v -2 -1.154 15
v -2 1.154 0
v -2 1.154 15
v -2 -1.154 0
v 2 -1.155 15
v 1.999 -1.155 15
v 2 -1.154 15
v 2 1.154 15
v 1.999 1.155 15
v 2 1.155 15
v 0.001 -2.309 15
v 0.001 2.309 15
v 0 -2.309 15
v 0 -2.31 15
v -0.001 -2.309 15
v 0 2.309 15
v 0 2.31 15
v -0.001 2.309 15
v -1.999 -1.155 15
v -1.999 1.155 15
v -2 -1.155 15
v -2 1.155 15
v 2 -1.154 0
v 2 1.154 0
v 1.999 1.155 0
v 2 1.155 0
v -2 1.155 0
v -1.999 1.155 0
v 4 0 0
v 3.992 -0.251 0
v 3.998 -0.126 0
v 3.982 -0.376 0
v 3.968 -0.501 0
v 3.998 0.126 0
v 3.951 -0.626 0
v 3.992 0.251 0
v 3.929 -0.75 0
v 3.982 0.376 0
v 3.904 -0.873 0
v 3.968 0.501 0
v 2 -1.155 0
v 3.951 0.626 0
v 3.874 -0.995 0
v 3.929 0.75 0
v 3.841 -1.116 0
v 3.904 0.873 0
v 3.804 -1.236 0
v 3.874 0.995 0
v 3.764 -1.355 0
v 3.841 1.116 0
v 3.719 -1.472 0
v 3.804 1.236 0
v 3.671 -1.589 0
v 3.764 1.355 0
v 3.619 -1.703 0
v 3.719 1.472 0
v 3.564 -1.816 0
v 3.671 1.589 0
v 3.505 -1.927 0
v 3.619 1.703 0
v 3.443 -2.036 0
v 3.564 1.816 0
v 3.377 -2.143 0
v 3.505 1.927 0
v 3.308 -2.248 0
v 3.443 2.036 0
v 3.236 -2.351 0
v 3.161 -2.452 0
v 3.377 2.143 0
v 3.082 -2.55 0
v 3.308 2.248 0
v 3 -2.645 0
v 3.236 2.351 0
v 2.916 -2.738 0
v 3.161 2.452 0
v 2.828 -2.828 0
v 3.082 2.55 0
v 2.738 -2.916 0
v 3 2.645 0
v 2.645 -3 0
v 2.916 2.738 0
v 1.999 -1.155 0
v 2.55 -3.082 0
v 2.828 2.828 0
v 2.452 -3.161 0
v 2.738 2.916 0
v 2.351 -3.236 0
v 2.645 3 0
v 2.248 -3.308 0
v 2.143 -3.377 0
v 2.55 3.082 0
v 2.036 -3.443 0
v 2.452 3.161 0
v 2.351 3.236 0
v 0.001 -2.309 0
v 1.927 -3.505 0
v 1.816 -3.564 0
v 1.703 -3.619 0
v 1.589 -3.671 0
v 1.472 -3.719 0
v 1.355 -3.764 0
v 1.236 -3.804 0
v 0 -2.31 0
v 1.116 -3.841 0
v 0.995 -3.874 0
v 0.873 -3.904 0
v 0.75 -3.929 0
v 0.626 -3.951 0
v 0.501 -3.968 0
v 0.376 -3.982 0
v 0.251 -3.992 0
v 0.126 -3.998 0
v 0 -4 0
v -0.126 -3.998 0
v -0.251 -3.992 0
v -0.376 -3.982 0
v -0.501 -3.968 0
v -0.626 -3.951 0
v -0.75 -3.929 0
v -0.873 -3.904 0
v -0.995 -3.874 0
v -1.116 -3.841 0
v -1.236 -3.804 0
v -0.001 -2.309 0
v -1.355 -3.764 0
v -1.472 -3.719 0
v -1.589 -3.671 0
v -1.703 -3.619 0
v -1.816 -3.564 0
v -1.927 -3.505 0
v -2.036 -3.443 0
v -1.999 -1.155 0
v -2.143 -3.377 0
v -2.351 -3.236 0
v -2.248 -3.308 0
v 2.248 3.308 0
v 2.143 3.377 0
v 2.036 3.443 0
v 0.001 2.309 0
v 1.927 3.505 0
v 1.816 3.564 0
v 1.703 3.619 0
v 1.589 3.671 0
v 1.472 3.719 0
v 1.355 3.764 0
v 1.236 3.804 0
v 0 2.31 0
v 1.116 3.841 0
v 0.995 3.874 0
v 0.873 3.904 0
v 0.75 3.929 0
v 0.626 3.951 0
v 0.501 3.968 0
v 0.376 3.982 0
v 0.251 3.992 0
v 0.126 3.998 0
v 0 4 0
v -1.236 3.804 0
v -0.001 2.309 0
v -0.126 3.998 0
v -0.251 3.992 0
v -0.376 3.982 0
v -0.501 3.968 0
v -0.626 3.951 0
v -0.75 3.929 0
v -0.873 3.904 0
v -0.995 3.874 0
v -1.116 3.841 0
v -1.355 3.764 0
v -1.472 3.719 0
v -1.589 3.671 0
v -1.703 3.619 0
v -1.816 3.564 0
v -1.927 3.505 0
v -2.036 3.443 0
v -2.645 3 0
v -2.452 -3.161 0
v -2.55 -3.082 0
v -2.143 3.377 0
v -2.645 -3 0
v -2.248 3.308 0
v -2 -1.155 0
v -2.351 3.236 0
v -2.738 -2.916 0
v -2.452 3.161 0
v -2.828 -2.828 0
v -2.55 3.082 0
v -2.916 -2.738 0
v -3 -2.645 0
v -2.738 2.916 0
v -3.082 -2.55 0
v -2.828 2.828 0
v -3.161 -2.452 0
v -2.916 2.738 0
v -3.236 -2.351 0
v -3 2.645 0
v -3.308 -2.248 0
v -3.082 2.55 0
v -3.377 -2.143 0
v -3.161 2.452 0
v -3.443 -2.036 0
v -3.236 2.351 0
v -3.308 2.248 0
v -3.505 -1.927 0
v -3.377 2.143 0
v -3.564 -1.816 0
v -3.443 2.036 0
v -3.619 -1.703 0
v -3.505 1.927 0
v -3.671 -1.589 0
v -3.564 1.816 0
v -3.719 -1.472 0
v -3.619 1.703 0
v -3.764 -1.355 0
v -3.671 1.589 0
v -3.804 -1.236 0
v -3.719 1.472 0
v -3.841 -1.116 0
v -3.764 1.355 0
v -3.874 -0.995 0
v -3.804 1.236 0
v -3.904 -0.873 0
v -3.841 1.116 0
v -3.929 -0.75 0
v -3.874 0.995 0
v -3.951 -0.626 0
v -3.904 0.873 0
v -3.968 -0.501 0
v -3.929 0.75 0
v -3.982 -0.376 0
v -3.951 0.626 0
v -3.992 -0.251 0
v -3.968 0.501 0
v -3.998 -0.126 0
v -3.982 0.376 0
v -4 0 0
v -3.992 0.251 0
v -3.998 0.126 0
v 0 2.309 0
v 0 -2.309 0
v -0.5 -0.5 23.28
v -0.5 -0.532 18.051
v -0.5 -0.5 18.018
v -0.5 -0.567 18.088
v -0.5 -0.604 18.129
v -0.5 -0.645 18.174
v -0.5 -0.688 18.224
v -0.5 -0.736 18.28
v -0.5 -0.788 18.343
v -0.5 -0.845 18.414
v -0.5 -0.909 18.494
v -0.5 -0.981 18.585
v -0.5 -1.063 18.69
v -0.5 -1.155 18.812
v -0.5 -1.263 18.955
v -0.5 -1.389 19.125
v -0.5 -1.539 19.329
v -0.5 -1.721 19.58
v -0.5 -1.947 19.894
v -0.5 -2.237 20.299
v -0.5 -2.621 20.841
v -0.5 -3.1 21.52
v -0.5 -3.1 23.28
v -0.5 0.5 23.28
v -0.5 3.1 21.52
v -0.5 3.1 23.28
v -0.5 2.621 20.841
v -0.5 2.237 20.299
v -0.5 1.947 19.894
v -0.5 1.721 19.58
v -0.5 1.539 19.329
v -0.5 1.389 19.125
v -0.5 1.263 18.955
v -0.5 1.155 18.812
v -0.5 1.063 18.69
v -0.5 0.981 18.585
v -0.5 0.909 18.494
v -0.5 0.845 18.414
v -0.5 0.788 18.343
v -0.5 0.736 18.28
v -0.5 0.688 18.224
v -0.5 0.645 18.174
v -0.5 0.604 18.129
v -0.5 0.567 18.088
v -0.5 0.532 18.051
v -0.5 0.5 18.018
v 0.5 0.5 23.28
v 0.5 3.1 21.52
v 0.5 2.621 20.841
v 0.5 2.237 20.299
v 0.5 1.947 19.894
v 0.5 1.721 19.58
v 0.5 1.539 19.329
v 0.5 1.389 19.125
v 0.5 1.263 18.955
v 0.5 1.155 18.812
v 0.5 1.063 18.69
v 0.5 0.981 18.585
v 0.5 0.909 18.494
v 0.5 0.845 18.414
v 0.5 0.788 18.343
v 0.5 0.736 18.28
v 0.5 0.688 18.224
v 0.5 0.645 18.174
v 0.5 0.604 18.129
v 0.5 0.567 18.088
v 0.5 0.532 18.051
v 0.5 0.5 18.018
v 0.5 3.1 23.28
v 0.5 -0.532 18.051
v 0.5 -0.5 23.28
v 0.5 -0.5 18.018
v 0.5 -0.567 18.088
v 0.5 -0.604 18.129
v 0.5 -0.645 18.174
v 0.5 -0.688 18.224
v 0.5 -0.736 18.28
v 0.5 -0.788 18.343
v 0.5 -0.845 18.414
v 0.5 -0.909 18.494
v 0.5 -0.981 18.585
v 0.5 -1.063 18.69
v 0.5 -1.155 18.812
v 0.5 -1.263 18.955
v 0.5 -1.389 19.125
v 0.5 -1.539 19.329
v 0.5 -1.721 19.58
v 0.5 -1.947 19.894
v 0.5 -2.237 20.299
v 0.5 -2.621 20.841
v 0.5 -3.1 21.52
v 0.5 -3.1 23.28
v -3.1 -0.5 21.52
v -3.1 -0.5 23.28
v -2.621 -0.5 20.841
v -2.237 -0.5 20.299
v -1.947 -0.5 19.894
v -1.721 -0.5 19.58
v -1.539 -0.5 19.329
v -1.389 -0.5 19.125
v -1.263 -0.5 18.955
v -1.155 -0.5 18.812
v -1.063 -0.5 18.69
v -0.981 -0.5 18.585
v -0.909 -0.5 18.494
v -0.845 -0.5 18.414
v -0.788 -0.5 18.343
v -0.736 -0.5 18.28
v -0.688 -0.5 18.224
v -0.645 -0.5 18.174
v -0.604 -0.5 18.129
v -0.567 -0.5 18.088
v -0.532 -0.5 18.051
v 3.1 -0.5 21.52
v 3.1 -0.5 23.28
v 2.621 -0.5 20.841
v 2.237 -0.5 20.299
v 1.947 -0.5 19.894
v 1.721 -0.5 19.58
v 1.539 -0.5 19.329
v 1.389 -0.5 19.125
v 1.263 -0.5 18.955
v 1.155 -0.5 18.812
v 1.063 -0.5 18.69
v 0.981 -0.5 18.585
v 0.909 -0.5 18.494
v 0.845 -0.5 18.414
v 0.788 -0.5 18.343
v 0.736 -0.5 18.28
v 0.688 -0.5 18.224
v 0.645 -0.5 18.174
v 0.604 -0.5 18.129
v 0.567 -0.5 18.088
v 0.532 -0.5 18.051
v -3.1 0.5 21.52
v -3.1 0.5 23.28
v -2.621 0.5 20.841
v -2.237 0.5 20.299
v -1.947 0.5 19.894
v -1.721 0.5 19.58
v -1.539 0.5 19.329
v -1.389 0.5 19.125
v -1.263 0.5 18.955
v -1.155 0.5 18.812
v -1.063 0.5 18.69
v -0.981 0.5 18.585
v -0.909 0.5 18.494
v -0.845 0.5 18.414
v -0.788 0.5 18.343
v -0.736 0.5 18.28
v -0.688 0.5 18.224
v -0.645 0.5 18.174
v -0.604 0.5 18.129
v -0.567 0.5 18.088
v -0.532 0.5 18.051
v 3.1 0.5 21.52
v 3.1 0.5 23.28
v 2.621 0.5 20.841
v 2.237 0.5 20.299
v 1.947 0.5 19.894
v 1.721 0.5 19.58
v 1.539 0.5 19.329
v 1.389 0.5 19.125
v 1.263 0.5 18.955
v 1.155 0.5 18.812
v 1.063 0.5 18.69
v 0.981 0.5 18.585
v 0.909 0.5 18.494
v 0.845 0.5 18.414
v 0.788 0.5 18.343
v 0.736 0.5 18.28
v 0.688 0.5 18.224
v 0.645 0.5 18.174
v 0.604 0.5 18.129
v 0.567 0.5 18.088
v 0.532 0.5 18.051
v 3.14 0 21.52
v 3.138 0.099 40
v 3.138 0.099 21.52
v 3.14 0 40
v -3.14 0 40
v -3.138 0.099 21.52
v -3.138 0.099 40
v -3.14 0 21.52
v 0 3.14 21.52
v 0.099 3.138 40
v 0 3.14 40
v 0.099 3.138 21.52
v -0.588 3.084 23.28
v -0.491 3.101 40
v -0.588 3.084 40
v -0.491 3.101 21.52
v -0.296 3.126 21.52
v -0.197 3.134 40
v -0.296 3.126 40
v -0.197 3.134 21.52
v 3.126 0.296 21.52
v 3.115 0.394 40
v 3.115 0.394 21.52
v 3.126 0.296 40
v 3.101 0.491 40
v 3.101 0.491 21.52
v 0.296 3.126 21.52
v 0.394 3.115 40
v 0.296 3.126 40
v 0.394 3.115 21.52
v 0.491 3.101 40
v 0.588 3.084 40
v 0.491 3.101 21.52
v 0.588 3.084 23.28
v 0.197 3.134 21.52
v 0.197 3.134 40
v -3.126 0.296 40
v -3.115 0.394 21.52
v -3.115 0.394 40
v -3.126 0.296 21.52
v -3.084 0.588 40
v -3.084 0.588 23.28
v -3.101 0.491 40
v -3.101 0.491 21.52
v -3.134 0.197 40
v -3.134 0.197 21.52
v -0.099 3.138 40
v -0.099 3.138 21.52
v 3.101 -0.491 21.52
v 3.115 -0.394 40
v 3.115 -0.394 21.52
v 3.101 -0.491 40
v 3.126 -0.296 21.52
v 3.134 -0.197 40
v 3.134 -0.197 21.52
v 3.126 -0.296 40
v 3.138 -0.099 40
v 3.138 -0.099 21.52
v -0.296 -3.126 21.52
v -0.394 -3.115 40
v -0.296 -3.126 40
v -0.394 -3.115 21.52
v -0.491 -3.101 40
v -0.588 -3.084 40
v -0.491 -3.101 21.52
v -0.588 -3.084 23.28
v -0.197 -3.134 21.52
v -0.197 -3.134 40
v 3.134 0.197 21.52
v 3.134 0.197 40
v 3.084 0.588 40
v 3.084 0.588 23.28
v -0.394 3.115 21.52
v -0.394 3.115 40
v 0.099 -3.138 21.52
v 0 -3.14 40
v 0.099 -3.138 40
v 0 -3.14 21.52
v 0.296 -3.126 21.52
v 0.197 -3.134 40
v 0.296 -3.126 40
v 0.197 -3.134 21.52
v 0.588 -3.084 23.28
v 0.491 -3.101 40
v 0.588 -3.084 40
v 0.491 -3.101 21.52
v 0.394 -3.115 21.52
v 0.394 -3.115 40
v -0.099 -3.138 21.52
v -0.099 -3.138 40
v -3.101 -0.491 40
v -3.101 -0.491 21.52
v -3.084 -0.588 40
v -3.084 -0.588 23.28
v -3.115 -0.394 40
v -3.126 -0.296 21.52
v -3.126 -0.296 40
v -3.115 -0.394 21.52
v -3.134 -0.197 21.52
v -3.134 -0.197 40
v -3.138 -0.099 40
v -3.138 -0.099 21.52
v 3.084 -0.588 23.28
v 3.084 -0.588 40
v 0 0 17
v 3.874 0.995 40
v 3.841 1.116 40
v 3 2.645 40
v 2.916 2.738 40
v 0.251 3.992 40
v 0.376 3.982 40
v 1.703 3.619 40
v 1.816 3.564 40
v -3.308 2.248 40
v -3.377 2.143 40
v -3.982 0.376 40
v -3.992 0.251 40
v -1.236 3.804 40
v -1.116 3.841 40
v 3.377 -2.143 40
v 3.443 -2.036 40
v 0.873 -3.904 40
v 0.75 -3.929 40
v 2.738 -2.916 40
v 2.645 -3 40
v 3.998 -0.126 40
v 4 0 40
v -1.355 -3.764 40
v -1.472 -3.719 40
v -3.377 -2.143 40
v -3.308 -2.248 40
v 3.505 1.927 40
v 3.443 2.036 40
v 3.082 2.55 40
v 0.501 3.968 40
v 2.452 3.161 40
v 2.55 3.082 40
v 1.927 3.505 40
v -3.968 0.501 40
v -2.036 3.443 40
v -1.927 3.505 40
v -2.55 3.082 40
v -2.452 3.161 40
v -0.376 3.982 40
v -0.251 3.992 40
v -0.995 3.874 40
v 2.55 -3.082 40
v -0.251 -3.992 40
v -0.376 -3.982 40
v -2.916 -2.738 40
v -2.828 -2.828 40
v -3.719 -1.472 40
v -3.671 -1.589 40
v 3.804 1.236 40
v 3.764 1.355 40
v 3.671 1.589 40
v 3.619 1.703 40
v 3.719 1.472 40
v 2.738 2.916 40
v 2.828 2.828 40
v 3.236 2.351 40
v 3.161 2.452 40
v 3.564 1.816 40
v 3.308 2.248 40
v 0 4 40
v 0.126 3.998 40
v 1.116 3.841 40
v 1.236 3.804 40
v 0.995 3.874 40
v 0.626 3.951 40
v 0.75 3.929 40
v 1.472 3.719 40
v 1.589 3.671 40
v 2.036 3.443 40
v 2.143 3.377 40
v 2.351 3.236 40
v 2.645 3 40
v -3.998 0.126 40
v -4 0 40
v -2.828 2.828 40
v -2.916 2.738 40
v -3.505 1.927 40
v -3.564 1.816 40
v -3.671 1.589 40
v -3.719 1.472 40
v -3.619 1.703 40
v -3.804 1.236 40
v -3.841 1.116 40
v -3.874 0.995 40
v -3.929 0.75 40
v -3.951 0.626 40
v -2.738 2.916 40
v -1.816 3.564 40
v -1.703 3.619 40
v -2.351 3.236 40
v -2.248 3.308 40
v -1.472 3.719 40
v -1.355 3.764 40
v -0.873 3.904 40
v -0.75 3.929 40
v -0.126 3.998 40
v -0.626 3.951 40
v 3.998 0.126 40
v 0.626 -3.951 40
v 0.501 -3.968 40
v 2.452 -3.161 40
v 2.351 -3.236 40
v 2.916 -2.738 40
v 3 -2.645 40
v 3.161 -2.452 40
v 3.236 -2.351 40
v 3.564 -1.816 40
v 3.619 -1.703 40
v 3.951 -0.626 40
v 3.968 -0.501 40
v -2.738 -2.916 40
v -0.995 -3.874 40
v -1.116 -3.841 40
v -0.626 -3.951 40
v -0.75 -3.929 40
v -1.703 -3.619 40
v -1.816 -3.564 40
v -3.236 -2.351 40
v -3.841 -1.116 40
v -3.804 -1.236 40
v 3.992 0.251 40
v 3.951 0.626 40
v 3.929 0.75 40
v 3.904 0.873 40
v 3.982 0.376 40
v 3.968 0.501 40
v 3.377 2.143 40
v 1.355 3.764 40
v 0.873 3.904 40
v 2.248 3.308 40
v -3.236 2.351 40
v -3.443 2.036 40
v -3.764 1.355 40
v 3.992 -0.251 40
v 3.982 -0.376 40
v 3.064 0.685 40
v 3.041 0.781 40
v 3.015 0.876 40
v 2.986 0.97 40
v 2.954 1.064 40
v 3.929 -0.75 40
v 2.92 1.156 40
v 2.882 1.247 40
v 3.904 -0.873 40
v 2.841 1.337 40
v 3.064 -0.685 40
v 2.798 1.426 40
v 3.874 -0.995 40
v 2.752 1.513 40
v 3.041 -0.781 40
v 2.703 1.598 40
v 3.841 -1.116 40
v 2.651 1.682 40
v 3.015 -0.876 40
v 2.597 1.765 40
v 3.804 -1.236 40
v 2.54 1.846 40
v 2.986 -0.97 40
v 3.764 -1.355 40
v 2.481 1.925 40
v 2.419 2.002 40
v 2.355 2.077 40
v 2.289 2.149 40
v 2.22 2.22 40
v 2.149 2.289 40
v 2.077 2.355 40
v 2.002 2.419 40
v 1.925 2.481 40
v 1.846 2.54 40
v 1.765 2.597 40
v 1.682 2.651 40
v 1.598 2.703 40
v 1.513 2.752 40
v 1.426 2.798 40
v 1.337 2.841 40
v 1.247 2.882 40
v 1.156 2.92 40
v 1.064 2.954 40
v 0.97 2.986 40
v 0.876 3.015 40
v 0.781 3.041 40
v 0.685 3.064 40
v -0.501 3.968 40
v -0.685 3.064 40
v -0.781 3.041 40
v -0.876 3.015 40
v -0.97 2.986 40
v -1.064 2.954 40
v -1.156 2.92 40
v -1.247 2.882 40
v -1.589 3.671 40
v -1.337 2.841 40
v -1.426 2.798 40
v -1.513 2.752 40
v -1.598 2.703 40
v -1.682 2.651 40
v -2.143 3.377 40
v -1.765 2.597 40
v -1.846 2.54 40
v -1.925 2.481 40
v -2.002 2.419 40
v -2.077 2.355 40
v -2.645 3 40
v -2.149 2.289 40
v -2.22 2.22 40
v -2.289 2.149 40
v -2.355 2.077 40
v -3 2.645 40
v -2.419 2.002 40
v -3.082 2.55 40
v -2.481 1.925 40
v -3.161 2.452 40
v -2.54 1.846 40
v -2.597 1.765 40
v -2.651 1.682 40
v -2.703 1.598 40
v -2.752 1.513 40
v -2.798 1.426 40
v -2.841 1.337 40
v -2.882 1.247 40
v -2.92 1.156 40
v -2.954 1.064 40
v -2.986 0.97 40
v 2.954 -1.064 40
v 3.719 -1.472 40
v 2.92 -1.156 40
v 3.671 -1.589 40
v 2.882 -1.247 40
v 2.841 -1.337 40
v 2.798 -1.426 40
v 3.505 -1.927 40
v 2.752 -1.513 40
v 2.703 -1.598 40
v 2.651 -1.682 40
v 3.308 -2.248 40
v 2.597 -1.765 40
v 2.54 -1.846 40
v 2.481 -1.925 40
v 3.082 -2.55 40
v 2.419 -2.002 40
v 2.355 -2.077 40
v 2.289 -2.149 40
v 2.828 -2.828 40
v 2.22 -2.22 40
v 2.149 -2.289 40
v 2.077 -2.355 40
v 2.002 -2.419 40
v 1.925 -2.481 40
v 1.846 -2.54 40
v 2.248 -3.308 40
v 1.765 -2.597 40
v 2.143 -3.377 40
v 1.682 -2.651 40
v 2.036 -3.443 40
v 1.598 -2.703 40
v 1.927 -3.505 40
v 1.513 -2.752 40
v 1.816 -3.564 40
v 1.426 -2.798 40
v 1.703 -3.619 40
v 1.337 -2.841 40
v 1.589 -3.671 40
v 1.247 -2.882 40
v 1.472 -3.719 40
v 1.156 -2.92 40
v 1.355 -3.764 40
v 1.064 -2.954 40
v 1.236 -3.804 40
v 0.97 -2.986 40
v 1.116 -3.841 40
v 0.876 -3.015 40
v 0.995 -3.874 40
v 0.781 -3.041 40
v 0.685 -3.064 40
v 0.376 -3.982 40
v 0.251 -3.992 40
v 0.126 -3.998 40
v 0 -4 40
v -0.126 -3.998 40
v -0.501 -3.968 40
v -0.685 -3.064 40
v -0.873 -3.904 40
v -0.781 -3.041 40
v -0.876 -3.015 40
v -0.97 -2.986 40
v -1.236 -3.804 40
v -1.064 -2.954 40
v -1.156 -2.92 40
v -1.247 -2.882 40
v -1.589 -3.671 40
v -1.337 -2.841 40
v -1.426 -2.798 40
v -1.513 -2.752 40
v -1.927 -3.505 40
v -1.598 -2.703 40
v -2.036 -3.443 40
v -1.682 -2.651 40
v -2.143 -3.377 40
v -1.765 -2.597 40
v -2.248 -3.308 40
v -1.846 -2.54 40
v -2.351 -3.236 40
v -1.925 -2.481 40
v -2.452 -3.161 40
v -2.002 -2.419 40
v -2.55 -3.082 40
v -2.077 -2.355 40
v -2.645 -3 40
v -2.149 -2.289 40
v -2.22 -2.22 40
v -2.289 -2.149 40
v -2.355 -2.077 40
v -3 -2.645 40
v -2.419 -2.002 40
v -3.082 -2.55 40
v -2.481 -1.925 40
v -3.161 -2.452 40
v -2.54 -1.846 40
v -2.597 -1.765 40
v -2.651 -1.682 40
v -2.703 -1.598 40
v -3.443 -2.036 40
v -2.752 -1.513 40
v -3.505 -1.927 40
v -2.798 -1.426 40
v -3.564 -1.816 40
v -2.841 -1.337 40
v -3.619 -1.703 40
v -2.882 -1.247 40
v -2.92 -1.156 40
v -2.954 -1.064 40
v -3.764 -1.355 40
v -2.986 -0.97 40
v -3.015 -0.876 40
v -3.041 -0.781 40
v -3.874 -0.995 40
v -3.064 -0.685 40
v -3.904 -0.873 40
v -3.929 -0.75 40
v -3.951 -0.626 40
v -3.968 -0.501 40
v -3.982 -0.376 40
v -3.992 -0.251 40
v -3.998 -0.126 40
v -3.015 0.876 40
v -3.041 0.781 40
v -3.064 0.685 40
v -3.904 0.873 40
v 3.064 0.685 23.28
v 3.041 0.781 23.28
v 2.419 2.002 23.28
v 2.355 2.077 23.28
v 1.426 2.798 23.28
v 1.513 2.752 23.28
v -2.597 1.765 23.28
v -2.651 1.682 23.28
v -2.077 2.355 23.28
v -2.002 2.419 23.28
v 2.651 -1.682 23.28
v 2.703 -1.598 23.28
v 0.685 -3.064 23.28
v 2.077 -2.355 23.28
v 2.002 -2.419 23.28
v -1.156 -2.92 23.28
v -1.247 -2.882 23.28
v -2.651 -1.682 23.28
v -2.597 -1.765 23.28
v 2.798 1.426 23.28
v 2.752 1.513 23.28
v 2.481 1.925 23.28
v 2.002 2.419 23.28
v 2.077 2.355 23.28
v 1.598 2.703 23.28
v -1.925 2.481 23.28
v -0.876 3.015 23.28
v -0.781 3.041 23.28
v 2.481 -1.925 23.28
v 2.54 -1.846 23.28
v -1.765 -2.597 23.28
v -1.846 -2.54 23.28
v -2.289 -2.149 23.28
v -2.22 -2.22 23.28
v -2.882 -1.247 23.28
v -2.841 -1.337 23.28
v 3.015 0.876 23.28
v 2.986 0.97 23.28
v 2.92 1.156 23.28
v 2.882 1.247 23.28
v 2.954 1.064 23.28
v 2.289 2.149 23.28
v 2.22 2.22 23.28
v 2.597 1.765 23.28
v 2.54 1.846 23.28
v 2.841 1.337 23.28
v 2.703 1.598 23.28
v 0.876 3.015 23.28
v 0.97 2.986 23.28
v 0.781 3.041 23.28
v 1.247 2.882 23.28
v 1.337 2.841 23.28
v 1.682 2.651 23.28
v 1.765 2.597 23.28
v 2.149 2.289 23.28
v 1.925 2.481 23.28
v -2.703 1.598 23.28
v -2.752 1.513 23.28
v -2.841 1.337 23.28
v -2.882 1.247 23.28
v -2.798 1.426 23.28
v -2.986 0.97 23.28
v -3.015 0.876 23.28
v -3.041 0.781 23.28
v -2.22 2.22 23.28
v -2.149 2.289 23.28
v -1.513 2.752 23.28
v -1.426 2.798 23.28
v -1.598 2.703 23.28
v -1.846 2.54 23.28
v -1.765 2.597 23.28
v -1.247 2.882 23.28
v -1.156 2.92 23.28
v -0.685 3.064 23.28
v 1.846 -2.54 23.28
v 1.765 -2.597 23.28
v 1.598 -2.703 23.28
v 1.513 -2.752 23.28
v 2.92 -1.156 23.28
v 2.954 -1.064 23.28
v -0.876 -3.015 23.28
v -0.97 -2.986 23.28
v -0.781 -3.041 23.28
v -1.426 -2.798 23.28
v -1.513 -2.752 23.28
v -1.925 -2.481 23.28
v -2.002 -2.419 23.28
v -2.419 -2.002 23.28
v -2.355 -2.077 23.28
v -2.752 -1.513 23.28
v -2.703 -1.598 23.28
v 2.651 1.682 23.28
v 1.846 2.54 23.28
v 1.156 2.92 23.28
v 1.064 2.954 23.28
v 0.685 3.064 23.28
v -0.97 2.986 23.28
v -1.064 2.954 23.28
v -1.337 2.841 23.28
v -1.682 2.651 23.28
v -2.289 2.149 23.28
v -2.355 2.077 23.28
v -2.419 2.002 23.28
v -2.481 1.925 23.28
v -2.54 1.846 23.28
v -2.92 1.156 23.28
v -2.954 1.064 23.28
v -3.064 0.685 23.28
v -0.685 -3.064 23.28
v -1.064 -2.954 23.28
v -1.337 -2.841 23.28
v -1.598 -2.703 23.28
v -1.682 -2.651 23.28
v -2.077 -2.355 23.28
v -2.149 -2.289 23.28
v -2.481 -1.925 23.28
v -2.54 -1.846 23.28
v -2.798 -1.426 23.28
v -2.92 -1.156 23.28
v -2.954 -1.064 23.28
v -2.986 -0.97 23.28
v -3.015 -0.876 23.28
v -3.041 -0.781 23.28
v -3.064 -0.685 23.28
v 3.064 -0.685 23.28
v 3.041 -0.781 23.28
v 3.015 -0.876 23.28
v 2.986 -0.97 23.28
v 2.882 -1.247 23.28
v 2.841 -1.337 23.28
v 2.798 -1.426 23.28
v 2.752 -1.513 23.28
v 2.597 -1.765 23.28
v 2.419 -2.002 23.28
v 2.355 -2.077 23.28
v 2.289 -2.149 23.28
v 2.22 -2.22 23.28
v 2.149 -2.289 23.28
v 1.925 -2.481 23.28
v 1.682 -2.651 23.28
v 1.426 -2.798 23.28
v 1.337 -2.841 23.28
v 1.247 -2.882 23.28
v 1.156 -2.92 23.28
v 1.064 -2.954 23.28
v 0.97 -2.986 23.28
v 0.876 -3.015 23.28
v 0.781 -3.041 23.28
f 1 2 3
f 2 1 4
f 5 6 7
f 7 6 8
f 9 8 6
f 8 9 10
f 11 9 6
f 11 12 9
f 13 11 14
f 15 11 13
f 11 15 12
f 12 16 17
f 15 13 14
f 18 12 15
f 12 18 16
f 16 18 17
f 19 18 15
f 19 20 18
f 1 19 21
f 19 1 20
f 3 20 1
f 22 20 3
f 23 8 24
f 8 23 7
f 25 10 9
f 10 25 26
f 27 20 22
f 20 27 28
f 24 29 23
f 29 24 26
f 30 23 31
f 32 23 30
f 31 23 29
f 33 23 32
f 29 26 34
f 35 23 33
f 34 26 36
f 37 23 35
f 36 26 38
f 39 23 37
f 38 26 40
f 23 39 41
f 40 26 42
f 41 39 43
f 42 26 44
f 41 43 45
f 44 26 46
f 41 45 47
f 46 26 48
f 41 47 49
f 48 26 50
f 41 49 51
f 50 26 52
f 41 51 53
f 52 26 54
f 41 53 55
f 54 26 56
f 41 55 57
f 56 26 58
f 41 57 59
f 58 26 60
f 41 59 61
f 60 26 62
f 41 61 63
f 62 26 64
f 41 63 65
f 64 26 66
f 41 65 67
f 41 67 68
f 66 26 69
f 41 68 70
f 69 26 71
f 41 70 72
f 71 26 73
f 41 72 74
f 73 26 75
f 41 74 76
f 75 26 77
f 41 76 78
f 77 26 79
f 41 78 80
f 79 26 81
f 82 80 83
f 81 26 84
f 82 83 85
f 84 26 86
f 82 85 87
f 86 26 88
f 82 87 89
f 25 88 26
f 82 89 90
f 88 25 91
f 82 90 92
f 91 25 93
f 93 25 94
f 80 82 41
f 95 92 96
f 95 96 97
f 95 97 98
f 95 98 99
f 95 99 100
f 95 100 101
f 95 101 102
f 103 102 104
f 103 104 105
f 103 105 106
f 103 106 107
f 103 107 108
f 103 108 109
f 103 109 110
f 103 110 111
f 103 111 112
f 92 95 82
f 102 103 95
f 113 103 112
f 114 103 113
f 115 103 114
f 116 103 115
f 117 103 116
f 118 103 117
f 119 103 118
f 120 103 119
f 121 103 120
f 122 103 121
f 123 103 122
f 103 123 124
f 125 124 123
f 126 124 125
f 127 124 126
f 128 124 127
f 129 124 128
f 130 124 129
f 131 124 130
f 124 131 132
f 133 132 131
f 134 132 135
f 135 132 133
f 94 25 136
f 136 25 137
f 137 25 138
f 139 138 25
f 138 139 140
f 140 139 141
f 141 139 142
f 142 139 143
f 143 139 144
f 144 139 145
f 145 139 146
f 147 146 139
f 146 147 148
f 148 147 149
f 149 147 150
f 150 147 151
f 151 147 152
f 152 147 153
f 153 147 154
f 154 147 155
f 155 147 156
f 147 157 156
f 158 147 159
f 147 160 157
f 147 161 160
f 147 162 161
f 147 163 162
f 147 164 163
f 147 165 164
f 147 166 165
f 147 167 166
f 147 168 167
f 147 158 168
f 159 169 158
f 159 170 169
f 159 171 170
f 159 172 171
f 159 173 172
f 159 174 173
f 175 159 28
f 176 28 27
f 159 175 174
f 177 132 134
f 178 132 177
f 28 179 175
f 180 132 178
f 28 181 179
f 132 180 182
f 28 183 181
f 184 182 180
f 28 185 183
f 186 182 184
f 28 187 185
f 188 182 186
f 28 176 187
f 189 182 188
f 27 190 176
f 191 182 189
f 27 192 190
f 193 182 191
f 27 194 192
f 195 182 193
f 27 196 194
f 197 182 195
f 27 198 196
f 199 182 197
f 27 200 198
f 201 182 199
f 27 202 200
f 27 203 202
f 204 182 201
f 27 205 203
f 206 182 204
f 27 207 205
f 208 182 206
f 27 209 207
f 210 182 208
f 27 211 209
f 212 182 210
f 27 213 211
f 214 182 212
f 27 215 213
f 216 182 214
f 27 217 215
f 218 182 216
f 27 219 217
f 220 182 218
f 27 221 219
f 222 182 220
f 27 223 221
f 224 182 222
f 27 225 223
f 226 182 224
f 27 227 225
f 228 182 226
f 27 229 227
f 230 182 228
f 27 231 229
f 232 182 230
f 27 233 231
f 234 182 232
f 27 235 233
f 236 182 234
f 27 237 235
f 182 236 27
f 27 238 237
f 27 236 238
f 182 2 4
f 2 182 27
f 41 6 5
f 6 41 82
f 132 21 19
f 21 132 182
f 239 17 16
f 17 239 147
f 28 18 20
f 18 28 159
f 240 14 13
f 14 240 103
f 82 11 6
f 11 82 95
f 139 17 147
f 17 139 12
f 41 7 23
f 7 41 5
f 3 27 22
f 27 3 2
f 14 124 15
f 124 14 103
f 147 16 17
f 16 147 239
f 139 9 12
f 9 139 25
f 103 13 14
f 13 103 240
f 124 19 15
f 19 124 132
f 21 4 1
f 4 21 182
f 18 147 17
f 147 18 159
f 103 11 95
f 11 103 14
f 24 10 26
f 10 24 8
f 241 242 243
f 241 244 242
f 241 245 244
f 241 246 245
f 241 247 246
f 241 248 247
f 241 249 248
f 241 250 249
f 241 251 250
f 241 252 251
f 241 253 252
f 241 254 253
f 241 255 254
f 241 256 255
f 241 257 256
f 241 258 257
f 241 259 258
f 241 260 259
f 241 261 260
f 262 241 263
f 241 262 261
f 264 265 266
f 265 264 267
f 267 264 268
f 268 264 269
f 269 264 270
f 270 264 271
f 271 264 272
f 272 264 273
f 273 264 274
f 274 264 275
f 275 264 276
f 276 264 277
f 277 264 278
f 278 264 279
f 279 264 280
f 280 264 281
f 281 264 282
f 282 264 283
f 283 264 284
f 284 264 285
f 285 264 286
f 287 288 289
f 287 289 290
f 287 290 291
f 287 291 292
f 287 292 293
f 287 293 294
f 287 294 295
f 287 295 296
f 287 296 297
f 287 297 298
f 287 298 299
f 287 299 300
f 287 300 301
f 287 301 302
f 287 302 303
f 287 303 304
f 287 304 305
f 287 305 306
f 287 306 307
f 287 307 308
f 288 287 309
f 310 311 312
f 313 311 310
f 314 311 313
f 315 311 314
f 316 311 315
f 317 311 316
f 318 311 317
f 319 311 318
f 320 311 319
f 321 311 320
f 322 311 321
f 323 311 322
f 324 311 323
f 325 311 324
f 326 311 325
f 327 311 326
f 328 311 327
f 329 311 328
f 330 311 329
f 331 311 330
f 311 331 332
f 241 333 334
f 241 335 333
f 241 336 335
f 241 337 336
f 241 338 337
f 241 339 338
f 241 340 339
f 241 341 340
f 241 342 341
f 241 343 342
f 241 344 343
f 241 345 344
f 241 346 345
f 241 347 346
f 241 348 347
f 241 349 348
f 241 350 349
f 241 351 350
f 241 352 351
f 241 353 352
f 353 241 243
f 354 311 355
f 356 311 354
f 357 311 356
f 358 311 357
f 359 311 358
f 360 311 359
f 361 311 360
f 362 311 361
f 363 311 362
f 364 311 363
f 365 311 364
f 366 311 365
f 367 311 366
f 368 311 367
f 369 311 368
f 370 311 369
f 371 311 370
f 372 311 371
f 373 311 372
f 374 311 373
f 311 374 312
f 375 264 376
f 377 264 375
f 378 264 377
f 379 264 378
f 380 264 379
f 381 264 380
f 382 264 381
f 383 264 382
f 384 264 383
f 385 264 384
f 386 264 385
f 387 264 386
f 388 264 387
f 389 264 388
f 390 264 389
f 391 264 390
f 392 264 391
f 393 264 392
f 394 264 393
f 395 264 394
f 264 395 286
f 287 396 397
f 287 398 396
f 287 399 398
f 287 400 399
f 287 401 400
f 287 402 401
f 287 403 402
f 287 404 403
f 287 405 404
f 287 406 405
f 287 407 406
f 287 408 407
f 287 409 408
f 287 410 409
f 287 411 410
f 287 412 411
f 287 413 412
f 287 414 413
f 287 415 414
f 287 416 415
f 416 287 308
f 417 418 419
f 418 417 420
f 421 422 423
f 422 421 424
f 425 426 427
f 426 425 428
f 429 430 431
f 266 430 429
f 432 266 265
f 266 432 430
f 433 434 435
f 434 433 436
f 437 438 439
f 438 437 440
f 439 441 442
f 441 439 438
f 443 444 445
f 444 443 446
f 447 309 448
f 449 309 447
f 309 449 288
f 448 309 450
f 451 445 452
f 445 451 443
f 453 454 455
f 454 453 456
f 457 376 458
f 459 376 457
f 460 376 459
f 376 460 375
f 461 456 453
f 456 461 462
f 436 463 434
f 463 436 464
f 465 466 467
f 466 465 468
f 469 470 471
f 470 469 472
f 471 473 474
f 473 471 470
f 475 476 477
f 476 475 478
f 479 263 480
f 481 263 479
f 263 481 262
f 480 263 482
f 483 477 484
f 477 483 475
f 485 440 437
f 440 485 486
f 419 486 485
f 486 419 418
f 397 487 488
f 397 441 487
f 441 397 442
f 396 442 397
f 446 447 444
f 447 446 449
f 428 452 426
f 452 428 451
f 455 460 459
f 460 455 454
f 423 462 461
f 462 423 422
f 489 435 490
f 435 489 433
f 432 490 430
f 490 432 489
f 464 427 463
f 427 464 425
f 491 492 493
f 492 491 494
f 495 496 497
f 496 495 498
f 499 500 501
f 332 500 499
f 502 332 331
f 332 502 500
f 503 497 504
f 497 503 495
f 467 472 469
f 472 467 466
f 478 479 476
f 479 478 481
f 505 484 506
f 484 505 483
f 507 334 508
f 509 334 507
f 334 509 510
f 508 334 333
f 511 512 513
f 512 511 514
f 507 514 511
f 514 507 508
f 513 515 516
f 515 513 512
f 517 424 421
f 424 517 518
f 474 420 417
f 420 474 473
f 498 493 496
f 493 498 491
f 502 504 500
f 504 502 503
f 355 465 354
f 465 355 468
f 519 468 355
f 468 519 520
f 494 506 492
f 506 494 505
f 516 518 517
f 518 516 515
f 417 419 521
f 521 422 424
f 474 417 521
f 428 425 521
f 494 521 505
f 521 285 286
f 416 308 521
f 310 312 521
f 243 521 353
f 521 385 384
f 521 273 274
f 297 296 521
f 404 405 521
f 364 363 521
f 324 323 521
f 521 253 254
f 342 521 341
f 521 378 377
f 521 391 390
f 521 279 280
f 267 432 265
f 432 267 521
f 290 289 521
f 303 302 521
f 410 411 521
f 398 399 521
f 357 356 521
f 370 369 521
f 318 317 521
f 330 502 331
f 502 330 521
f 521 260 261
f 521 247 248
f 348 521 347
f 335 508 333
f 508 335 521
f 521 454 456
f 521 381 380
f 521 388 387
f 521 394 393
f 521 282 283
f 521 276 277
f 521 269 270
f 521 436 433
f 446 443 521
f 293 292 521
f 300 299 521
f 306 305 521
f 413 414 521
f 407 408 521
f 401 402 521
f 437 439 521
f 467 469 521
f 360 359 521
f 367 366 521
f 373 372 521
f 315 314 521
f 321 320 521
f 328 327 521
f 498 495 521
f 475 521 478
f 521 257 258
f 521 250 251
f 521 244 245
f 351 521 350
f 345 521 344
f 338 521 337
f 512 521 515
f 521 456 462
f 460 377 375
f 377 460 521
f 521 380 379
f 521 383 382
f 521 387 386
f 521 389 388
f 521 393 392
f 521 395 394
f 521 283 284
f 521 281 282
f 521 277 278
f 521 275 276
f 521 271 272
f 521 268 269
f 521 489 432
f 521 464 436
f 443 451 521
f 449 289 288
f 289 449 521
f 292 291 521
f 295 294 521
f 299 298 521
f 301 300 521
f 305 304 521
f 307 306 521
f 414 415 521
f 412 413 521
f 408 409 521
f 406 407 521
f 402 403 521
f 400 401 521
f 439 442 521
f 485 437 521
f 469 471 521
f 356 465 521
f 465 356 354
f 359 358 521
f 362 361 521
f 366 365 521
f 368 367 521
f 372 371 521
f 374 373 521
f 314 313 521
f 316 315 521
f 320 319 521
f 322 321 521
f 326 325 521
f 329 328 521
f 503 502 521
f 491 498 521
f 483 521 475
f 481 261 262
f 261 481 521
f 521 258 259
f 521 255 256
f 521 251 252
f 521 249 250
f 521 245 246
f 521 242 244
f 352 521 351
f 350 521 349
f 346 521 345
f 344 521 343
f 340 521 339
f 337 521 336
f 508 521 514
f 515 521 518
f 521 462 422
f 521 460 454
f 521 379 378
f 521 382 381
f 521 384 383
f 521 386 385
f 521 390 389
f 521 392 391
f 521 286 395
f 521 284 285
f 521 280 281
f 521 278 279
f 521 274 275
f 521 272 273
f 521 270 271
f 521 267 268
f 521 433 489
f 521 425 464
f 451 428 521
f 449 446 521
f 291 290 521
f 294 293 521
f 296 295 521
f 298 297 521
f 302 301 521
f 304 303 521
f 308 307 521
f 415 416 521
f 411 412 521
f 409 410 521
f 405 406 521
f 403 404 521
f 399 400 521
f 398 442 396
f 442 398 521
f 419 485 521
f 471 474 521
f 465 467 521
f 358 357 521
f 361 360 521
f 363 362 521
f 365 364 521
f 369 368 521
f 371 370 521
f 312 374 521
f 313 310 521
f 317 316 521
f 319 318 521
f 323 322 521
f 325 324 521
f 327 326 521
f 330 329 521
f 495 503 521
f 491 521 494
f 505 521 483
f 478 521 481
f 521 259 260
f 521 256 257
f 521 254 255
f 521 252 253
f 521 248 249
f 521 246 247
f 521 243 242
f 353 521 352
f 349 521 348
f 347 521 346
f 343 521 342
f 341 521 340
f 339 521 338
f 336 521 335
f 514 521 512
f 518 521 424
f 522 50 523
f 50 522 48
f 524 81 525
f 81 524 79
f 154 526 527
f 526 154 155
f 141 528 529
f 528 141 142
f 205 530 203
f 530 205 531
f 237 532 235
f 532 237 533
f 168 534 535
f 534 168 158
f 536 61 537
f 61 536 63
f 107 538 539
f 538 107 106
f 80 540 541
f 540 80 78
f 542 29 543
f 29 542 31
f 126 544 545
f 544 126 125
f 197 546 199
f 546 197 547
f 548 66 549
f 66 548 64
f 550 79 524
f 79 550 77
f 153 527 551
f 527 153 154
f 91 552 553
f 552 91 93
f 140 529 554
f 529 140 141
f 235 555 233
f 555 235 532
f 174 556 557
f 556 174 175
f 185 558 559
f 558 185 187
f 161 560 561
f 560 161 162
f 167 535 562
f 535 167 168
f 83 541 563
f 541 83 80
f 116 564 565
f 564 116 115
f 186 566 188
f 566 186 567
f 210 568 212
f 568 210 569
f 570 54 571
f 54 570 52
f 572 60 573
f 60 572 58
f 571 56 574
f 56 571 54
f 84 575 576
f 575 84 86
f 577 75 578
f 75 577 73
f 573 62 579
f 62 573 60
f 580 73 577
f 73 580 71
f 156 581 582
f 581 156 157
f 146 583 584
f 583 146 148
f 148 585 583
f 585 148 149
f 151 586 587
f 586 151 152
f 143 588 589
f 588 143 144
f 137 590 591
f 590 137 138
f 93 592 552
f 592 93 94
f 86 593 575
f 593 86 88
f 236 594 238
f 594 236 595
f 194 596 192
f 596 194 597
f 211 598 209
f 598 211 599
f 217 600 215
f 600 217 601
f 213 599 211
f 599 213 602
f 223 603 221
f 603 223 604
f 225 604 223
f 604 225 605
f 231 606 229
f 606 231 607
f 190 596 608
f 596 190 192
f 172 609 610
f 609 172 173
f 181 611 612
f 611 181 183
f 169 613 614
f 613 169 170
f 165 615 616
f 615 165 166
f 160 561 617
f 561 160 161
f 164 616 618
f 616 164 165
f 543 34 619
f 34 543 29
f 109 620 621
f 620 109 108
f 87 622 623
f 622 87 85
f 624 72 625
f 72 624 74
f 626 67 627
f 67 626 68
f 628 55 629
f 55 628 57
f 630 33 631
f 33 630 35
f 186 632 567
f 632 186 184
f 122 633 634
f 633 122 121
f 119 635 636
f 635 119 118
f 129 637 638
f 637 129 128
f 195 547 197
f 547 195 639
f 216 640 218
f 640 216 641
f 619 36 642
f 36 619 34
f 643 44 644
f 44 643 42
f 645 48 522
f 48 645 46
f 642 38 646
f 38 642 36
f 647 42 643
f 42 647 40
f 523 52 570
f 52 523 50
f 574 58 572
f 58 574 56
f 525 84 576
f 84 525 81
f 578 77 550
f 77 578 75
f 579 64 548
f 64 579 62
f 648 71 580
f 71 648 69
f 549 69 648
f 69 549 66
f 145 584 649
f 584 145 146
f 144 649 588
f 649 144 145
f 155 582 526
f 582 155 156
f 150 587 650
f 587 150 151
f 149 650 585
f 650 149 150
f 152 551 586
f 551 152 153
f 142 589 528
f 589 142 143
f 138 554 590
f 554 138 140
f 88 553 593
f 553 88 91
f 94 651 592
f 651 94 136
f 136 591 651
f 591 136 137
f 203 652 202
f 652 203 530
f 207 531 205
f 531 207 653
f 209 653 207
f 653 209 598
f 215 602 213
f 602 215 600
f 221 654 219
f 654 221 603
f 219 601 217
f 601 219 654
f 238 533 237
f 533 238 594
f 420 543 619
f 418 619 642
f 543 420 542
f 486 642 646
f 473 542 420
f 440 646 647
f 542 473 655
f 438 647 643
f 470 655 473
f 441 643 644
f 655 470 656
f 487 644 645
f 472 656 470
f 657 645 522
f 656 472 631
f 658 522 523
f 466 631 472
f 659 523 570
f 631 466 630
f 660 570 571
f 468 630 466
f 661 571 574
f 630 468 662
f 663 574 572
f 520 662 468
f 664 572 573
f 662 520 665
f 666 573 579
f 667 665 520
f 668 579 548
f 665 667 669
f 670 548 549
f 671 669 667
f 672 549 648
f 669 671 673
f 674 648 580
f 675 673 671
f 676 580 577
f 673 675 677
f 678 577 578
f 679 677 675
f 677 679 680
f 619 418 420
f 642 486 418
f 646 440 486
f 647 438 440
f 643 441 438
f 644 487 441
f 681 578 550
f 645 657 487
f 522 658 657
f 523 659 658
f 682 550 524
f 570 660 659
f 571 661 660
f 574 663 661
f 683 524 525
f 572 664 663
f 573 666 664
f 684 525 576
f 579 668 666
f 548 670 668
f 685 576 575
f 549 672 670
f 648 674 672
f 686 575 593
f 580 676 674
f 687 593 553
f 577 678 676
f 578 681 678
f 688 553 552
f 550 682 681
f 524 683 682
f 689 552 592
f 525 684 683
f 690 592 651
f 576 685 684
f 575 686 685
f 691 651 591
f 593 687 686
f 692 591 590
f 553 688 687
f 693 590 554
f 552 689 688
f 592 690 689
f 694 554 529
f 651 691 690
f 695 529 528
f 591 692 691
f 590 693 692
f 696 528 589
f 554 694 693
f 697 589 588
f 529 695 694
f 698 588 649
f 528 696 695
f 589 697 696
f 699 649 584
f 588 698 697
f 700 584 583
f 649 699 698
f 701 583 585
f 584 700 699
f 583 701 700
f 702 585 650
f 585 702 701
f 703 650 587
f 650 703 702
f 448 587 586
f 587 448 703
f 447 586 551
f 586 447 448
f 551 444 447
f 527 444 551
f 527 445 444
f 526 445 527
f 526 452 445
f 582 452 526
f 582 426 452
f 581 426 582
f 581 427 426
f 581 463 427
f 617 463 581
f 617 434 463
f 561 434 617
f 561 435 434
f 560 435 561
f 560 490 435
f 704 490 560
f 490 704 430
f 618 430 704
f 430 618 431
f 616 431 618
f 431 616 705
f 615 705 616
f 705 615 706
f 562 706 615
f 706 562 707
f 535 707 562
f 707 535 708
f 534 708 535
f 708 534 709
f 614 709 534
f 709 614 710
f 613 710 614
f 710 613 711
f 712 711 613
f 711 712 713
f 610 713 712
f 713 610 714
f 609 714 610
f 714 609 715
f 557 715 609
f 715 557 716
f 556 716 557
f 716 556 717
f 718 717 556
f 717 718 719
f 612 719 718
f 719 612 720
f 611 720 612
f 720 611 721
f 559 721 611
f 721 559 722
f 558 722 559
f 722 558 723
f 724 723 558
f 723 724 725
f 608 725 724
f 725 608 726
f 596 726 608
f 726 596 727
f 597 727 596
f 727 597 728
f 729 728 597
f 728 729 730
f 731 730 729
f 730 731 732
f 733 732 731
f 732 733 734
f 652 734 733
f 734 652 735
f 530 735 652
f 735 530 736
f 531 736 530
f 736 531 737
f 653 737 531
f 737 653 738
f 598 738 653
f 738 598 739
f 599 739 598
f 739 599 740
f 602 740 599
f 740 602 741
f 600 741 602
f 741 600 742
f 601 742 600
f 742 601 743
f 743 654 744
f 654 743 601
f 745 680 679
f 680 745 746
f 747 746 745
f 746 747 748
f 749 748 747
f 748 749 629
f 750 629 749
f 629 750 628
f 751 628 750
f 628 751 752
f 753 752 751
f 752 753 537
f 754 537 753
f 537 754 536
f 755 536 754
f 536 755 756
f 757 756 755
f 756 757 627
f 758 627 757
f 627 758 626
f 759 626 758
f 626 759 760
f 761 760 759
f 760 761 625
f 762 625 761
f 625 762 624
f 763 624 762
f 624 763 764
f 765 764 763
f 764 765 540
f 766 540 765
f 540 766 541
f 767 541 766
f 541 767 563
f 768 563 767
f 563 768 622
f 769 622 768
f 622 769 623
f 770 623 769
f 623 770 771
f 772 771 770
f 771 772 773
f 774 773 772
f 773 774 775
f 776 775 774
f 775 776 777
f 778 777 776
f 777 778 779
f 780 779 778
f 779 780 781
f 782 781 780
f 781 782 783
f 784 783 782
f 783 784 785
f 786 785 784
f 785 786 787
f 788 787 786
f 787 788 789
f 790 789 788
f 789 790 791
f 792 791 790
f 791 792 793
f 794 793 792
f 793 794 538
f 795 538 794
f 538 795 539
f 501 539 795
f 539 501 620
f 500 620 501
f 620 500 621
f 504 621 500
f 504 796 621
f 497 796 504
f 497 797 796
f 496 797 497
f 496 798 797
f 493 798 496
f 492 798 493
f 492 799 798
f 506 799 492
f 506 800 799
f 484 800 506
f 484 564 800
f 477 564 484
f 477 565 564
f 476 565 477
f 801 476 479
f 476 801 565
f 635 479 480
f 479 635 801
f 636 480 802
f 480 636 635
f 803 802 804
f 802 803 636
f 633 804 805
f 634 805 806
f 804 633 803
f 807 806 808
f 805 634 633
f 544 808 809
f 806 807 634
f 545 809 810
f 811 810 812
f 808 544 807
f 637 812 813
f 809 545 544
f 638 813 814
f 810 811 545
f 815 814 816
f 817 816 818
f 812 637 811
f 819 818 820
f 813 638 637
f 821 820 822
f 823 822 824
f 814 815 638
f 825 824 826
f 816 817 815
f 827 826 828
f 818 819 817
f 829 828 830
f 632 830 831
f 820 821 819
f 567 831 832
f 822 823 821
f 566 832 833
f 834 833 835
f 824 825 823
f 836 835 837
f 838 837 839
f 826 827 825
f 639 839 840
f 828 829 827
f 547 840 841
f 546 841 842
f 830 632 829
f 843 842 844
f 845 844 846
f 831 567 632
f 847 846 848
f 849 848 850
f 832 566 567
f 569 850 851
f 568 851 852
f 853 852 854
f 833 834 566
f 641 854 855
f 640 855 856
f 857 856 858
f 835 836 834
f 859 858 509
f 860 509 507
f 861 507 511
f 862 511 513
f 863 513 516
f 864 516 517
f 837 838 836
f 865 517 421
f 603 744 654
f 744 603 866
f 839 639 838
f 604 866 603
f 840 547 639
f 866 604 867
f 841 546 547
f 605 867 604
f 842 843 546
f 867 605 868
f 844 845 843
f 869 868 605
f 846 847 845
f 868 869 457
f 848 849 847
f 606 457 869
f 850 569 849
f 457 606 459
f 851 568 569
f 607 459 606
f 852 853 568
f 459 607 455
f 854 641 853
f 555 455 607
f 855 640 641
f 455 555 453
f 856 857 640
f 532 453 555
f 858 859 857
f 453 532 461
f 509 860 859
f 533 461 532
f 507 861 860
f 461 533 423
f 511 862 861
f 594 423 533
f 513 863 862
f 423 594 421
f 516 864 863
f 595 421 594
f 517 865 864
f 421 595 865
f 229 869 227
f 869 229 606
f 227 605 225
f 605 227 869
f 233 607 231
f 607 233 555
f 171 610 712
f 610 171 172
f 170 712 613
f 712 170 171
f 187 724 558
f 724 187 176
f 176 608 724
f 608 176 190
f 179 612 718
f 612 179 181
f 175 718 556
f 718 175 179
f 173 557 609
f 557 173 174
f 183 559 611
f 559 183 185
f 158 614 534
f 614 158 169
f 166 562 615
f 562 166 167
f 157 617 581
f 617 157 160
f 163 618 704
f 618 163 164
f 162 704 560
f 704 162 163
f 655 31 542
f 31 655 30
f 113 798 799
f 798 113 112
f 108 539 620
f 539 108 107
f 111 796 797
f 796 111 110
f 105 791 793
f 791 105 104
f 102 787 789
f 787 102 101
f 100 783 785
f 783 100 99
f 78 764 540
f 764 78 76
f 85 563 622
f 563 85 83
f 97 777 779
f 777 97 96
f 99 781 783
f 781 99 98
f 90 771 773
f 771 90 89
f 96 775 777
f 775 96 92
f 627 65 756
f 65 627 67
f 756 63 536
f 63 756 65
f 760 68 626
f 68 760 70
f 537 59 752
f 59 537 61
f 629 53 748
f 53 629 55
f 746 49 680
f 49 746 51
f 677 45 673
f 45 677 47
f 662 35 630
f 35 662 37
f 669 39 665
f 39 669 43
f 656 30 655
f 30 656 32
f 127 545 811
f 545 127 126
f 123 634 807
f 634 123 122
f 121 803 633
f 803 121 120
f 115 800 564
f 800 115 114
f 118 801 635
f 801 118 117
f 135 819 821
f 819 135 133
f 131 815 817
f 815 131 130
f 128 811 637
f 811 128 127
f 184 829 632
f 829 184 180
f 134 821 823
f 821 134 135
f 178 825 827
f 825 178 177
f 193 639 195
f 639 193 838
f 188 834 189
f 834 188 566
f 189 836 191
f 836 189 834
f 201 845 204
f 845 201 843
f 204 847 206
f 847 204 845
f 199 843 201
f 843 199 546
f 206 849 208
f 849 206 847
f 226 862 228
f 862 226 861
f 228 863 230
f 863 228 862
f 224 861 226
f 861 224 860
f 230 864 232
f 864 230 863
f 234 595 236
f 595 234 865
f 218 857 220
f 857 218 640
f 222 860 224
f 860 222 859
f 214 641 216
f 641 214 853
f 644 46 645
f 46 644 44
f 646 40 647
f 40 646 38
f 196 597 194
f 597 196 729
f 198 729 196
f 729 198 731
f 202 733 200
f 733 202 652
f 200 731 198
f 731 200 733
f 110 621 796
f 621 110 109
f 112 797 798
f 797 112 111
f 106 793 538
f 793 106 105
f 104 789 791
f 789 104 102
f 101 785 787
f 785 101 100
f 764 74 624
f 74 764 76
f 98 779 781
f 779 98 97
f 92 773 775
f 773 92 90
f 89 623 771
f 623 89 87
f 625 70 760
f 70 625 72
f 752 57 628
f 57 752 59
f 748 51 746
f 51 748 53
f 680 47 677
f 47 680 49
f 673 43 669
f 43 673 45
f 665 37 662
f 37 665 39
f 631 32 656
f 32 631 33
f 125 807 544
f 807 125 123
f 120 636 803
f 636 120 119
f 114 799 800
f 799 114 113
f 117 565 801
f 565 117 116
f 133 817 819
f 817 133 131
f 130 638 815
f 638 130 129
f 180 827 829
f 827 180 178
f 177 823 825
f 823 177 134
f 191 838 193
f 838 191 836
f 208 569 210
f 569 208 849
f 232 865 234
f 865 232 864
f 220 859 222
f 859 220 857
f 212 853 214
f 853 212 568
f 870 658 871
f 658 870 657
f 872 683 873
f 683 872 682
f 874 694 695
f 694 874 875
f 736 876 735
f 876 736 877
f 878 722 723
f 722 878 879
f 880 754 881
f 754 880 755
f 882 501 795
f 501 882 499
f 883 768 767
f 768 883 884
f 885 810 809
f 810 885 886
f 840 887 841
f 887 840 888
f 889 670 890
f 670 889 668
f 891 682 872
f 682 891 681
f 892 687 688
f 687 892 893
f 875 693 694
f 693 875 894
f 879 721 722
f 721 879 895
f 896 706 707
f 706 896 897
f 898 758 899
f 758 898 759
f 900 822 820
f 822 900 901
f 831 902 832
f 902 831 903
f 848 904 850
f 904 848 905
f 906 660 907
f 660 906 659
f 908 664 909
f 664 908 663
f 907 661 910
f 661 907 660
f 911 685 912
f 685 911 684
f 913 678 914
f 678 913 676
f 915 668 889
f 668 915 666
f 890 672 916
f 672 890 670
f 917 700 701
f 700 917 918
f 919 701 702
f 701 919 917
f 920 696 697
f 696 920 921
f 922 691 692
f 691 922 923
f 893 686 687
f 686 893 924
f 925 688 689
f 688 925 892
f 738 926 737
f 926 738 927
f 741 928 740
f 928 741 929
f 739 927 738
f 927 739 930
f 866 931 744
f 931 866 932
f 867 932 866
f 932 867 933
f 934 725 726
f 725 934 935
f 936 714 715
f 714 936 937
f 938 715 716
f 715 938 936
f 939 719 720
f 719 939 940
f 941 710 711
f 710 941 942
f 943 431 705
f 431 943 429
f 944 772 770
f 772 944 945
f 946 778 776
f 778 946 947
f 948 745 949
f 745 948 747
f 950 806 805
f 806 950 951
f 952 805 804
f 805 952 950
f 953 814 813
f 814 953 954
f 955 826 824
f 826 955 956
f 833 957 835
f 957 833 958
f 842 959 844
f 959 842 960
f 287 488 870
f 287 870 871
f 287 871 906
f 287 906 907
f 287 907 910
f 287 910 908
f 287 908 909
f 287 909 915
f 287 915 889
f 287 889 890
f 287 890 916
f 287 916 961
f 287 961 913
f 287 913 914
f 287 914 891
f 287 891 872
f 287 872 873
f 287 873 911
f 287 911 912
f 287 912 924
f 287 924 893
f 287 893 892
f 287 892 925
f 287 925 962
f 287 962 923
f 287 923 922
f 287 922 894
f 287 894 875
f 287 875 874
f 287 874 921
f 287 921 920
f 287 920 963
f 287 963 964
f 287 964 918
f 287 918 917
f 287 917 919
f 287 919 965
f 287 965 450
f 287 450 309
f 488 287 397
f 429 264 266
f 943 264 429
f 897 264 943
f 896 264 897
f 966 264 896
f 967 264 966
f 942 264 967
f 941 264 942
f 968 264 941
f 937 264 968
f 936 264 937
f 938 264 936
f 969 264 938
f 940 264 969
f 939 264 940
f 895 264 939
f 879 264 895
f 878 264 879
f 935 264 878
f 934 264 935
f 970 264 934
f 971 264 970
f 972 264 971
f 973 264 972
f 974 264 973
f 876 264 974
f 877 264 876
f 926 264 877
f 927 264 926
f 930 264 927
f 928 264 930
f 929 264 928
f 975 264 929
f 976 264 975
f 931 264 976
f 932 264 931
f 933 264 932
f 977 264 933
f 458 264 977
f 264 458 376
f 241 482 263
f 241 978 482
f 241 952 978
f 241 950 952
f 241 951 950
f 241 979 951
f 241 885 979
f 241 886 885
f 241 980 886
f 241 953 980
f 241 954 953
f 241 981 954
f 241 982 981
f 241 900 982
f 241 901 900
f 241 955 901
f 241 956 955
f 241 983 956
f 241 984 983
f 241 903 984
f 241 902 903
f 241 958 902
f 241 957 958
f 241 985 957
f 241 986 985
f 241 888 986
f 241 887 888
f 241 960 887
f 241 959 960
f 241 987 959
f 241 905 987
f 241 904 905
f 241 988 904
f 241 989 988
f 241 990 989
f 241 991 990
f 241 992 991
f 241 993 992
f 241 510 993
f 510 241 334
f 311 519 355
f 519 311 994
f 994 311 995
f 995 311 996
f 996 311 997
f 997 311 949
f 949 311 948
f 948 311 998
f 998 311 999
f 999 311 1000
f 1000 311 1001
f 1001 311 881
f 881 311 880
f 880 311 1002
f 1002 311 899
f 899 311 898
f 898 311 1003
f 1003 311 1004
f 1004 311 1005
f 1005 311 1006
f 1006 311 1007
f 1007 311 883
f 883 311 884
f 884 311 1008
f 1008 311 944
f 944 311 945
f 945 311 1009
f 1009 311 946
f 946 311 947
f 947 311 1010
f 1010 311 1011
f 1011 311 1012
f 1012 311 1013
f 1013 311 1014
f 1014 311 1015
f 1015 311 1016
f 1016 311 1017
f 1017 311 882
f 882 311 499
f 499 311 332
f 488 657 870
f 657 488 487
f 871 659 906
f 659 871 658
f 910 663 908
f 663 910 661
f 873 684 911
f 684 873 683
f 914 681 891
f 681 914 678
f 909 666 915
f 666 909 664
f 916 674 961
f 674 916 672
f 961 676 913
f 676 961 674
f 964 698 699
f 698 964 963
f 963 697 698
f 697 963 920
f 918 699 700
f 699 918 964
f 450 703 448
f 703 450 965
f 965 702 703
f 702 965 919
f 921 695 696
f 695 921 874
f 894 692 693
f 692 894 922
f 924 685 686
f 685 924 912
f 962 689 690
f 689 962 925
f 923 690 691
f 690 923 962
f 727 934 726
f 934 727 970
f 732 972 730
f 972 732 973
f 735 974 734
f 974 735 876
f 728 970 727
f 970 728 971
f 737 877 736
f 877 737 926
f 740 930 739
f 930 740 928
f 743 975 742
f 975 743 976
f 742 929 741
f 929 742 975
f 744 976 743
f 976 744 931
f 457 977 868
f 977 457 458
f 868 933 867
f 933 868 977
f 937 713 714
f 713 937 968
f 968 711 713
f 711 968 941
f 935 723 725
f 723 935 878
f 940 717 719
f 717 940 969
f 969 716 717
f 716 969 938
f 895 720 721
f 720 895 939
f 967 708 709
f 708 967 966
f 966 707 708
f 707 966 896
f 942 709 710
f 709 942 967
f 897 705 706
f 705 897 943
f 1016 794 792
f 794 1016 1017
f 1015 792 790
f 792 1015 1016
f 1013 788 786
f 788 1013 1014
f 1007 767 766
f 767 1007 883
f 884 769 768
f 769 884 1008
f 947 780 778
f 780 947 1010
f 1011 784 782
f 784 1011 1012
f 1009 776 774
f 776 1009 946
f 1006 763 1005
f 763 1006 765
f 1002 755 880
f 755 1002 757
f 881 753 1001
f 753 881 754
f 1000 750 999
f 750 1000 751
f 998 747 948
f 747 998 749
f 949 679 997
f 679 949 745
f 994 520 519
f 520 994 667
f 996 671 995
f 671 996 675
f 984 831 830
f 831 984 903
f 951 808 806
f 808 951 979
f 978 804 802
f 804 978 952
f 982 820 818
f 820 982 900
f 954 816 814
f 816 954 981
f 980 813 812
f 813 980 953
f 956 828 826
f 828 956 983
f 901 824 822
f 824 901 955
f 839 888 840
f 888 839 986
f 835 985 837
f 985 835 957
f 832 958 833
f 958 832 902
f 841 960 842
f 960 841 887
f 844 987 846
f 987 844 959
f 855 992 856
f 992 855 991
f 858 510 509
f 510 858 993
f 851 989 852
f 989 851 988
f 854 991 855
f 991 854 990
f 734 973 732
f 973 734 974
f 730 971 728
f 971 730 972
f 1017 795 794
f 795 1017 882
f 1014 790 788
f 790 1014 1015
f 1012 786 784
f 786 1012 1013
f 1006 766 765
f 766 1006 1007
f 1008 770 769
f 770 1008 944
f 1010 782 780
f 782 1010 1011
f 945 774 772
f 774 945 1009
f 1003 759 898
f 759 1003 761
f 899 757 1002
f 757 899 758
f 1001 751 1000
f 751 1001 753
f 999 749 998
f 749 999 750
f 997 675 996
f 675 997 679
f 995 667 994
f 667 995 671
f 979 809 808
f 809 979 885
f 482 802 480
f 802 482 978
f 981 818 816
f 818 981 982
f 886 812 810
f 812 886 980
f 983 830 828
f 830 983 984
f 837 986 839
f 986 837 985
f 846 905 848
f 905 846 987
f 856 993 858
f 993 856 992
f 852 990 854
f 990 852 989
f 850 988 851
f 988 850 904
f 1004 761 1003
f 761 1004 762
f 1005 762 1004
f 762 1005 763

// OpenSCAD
$fn=200;


module driver() { 
  difference() {
    cylinder(r=4,h=17);
    for (i=[0:1:2]) {
      rotate([0,0,i*120])
      translate([-2,-1*(2.31/2), 0])
      cube([4,2.31,15]);
    }
  }
}

module driver_shaft () {
 cylinder(r=6.28/2,h=50);
}

module phillips_head() {
  intersection() { 
    union() { 
      translate([-0.5,-6.28/2,0])
      cube([1,6.28,6.5]);
      translate([-6.28/2,-0.5,0])
      cube([6.28,1,6.5]);
    } 
    union() {
      translate([0,0,4.52])
      cylinder(r=6.28/2,h=20); 
      cylinder(r1=0,r2=6.28/2,h=4.52);
    }
  }
}


translate([0,0,17])
difference() {
  cylinder(r=4,h=23);
  translate([0,0,6.28])
  driver_shaft();
  #phillips_head();

}  


driver();



//translate([0,0,50+30])
//sphere(r=30);

//translate([0,0,50+30])
//cylinder(r=30,h=50);
